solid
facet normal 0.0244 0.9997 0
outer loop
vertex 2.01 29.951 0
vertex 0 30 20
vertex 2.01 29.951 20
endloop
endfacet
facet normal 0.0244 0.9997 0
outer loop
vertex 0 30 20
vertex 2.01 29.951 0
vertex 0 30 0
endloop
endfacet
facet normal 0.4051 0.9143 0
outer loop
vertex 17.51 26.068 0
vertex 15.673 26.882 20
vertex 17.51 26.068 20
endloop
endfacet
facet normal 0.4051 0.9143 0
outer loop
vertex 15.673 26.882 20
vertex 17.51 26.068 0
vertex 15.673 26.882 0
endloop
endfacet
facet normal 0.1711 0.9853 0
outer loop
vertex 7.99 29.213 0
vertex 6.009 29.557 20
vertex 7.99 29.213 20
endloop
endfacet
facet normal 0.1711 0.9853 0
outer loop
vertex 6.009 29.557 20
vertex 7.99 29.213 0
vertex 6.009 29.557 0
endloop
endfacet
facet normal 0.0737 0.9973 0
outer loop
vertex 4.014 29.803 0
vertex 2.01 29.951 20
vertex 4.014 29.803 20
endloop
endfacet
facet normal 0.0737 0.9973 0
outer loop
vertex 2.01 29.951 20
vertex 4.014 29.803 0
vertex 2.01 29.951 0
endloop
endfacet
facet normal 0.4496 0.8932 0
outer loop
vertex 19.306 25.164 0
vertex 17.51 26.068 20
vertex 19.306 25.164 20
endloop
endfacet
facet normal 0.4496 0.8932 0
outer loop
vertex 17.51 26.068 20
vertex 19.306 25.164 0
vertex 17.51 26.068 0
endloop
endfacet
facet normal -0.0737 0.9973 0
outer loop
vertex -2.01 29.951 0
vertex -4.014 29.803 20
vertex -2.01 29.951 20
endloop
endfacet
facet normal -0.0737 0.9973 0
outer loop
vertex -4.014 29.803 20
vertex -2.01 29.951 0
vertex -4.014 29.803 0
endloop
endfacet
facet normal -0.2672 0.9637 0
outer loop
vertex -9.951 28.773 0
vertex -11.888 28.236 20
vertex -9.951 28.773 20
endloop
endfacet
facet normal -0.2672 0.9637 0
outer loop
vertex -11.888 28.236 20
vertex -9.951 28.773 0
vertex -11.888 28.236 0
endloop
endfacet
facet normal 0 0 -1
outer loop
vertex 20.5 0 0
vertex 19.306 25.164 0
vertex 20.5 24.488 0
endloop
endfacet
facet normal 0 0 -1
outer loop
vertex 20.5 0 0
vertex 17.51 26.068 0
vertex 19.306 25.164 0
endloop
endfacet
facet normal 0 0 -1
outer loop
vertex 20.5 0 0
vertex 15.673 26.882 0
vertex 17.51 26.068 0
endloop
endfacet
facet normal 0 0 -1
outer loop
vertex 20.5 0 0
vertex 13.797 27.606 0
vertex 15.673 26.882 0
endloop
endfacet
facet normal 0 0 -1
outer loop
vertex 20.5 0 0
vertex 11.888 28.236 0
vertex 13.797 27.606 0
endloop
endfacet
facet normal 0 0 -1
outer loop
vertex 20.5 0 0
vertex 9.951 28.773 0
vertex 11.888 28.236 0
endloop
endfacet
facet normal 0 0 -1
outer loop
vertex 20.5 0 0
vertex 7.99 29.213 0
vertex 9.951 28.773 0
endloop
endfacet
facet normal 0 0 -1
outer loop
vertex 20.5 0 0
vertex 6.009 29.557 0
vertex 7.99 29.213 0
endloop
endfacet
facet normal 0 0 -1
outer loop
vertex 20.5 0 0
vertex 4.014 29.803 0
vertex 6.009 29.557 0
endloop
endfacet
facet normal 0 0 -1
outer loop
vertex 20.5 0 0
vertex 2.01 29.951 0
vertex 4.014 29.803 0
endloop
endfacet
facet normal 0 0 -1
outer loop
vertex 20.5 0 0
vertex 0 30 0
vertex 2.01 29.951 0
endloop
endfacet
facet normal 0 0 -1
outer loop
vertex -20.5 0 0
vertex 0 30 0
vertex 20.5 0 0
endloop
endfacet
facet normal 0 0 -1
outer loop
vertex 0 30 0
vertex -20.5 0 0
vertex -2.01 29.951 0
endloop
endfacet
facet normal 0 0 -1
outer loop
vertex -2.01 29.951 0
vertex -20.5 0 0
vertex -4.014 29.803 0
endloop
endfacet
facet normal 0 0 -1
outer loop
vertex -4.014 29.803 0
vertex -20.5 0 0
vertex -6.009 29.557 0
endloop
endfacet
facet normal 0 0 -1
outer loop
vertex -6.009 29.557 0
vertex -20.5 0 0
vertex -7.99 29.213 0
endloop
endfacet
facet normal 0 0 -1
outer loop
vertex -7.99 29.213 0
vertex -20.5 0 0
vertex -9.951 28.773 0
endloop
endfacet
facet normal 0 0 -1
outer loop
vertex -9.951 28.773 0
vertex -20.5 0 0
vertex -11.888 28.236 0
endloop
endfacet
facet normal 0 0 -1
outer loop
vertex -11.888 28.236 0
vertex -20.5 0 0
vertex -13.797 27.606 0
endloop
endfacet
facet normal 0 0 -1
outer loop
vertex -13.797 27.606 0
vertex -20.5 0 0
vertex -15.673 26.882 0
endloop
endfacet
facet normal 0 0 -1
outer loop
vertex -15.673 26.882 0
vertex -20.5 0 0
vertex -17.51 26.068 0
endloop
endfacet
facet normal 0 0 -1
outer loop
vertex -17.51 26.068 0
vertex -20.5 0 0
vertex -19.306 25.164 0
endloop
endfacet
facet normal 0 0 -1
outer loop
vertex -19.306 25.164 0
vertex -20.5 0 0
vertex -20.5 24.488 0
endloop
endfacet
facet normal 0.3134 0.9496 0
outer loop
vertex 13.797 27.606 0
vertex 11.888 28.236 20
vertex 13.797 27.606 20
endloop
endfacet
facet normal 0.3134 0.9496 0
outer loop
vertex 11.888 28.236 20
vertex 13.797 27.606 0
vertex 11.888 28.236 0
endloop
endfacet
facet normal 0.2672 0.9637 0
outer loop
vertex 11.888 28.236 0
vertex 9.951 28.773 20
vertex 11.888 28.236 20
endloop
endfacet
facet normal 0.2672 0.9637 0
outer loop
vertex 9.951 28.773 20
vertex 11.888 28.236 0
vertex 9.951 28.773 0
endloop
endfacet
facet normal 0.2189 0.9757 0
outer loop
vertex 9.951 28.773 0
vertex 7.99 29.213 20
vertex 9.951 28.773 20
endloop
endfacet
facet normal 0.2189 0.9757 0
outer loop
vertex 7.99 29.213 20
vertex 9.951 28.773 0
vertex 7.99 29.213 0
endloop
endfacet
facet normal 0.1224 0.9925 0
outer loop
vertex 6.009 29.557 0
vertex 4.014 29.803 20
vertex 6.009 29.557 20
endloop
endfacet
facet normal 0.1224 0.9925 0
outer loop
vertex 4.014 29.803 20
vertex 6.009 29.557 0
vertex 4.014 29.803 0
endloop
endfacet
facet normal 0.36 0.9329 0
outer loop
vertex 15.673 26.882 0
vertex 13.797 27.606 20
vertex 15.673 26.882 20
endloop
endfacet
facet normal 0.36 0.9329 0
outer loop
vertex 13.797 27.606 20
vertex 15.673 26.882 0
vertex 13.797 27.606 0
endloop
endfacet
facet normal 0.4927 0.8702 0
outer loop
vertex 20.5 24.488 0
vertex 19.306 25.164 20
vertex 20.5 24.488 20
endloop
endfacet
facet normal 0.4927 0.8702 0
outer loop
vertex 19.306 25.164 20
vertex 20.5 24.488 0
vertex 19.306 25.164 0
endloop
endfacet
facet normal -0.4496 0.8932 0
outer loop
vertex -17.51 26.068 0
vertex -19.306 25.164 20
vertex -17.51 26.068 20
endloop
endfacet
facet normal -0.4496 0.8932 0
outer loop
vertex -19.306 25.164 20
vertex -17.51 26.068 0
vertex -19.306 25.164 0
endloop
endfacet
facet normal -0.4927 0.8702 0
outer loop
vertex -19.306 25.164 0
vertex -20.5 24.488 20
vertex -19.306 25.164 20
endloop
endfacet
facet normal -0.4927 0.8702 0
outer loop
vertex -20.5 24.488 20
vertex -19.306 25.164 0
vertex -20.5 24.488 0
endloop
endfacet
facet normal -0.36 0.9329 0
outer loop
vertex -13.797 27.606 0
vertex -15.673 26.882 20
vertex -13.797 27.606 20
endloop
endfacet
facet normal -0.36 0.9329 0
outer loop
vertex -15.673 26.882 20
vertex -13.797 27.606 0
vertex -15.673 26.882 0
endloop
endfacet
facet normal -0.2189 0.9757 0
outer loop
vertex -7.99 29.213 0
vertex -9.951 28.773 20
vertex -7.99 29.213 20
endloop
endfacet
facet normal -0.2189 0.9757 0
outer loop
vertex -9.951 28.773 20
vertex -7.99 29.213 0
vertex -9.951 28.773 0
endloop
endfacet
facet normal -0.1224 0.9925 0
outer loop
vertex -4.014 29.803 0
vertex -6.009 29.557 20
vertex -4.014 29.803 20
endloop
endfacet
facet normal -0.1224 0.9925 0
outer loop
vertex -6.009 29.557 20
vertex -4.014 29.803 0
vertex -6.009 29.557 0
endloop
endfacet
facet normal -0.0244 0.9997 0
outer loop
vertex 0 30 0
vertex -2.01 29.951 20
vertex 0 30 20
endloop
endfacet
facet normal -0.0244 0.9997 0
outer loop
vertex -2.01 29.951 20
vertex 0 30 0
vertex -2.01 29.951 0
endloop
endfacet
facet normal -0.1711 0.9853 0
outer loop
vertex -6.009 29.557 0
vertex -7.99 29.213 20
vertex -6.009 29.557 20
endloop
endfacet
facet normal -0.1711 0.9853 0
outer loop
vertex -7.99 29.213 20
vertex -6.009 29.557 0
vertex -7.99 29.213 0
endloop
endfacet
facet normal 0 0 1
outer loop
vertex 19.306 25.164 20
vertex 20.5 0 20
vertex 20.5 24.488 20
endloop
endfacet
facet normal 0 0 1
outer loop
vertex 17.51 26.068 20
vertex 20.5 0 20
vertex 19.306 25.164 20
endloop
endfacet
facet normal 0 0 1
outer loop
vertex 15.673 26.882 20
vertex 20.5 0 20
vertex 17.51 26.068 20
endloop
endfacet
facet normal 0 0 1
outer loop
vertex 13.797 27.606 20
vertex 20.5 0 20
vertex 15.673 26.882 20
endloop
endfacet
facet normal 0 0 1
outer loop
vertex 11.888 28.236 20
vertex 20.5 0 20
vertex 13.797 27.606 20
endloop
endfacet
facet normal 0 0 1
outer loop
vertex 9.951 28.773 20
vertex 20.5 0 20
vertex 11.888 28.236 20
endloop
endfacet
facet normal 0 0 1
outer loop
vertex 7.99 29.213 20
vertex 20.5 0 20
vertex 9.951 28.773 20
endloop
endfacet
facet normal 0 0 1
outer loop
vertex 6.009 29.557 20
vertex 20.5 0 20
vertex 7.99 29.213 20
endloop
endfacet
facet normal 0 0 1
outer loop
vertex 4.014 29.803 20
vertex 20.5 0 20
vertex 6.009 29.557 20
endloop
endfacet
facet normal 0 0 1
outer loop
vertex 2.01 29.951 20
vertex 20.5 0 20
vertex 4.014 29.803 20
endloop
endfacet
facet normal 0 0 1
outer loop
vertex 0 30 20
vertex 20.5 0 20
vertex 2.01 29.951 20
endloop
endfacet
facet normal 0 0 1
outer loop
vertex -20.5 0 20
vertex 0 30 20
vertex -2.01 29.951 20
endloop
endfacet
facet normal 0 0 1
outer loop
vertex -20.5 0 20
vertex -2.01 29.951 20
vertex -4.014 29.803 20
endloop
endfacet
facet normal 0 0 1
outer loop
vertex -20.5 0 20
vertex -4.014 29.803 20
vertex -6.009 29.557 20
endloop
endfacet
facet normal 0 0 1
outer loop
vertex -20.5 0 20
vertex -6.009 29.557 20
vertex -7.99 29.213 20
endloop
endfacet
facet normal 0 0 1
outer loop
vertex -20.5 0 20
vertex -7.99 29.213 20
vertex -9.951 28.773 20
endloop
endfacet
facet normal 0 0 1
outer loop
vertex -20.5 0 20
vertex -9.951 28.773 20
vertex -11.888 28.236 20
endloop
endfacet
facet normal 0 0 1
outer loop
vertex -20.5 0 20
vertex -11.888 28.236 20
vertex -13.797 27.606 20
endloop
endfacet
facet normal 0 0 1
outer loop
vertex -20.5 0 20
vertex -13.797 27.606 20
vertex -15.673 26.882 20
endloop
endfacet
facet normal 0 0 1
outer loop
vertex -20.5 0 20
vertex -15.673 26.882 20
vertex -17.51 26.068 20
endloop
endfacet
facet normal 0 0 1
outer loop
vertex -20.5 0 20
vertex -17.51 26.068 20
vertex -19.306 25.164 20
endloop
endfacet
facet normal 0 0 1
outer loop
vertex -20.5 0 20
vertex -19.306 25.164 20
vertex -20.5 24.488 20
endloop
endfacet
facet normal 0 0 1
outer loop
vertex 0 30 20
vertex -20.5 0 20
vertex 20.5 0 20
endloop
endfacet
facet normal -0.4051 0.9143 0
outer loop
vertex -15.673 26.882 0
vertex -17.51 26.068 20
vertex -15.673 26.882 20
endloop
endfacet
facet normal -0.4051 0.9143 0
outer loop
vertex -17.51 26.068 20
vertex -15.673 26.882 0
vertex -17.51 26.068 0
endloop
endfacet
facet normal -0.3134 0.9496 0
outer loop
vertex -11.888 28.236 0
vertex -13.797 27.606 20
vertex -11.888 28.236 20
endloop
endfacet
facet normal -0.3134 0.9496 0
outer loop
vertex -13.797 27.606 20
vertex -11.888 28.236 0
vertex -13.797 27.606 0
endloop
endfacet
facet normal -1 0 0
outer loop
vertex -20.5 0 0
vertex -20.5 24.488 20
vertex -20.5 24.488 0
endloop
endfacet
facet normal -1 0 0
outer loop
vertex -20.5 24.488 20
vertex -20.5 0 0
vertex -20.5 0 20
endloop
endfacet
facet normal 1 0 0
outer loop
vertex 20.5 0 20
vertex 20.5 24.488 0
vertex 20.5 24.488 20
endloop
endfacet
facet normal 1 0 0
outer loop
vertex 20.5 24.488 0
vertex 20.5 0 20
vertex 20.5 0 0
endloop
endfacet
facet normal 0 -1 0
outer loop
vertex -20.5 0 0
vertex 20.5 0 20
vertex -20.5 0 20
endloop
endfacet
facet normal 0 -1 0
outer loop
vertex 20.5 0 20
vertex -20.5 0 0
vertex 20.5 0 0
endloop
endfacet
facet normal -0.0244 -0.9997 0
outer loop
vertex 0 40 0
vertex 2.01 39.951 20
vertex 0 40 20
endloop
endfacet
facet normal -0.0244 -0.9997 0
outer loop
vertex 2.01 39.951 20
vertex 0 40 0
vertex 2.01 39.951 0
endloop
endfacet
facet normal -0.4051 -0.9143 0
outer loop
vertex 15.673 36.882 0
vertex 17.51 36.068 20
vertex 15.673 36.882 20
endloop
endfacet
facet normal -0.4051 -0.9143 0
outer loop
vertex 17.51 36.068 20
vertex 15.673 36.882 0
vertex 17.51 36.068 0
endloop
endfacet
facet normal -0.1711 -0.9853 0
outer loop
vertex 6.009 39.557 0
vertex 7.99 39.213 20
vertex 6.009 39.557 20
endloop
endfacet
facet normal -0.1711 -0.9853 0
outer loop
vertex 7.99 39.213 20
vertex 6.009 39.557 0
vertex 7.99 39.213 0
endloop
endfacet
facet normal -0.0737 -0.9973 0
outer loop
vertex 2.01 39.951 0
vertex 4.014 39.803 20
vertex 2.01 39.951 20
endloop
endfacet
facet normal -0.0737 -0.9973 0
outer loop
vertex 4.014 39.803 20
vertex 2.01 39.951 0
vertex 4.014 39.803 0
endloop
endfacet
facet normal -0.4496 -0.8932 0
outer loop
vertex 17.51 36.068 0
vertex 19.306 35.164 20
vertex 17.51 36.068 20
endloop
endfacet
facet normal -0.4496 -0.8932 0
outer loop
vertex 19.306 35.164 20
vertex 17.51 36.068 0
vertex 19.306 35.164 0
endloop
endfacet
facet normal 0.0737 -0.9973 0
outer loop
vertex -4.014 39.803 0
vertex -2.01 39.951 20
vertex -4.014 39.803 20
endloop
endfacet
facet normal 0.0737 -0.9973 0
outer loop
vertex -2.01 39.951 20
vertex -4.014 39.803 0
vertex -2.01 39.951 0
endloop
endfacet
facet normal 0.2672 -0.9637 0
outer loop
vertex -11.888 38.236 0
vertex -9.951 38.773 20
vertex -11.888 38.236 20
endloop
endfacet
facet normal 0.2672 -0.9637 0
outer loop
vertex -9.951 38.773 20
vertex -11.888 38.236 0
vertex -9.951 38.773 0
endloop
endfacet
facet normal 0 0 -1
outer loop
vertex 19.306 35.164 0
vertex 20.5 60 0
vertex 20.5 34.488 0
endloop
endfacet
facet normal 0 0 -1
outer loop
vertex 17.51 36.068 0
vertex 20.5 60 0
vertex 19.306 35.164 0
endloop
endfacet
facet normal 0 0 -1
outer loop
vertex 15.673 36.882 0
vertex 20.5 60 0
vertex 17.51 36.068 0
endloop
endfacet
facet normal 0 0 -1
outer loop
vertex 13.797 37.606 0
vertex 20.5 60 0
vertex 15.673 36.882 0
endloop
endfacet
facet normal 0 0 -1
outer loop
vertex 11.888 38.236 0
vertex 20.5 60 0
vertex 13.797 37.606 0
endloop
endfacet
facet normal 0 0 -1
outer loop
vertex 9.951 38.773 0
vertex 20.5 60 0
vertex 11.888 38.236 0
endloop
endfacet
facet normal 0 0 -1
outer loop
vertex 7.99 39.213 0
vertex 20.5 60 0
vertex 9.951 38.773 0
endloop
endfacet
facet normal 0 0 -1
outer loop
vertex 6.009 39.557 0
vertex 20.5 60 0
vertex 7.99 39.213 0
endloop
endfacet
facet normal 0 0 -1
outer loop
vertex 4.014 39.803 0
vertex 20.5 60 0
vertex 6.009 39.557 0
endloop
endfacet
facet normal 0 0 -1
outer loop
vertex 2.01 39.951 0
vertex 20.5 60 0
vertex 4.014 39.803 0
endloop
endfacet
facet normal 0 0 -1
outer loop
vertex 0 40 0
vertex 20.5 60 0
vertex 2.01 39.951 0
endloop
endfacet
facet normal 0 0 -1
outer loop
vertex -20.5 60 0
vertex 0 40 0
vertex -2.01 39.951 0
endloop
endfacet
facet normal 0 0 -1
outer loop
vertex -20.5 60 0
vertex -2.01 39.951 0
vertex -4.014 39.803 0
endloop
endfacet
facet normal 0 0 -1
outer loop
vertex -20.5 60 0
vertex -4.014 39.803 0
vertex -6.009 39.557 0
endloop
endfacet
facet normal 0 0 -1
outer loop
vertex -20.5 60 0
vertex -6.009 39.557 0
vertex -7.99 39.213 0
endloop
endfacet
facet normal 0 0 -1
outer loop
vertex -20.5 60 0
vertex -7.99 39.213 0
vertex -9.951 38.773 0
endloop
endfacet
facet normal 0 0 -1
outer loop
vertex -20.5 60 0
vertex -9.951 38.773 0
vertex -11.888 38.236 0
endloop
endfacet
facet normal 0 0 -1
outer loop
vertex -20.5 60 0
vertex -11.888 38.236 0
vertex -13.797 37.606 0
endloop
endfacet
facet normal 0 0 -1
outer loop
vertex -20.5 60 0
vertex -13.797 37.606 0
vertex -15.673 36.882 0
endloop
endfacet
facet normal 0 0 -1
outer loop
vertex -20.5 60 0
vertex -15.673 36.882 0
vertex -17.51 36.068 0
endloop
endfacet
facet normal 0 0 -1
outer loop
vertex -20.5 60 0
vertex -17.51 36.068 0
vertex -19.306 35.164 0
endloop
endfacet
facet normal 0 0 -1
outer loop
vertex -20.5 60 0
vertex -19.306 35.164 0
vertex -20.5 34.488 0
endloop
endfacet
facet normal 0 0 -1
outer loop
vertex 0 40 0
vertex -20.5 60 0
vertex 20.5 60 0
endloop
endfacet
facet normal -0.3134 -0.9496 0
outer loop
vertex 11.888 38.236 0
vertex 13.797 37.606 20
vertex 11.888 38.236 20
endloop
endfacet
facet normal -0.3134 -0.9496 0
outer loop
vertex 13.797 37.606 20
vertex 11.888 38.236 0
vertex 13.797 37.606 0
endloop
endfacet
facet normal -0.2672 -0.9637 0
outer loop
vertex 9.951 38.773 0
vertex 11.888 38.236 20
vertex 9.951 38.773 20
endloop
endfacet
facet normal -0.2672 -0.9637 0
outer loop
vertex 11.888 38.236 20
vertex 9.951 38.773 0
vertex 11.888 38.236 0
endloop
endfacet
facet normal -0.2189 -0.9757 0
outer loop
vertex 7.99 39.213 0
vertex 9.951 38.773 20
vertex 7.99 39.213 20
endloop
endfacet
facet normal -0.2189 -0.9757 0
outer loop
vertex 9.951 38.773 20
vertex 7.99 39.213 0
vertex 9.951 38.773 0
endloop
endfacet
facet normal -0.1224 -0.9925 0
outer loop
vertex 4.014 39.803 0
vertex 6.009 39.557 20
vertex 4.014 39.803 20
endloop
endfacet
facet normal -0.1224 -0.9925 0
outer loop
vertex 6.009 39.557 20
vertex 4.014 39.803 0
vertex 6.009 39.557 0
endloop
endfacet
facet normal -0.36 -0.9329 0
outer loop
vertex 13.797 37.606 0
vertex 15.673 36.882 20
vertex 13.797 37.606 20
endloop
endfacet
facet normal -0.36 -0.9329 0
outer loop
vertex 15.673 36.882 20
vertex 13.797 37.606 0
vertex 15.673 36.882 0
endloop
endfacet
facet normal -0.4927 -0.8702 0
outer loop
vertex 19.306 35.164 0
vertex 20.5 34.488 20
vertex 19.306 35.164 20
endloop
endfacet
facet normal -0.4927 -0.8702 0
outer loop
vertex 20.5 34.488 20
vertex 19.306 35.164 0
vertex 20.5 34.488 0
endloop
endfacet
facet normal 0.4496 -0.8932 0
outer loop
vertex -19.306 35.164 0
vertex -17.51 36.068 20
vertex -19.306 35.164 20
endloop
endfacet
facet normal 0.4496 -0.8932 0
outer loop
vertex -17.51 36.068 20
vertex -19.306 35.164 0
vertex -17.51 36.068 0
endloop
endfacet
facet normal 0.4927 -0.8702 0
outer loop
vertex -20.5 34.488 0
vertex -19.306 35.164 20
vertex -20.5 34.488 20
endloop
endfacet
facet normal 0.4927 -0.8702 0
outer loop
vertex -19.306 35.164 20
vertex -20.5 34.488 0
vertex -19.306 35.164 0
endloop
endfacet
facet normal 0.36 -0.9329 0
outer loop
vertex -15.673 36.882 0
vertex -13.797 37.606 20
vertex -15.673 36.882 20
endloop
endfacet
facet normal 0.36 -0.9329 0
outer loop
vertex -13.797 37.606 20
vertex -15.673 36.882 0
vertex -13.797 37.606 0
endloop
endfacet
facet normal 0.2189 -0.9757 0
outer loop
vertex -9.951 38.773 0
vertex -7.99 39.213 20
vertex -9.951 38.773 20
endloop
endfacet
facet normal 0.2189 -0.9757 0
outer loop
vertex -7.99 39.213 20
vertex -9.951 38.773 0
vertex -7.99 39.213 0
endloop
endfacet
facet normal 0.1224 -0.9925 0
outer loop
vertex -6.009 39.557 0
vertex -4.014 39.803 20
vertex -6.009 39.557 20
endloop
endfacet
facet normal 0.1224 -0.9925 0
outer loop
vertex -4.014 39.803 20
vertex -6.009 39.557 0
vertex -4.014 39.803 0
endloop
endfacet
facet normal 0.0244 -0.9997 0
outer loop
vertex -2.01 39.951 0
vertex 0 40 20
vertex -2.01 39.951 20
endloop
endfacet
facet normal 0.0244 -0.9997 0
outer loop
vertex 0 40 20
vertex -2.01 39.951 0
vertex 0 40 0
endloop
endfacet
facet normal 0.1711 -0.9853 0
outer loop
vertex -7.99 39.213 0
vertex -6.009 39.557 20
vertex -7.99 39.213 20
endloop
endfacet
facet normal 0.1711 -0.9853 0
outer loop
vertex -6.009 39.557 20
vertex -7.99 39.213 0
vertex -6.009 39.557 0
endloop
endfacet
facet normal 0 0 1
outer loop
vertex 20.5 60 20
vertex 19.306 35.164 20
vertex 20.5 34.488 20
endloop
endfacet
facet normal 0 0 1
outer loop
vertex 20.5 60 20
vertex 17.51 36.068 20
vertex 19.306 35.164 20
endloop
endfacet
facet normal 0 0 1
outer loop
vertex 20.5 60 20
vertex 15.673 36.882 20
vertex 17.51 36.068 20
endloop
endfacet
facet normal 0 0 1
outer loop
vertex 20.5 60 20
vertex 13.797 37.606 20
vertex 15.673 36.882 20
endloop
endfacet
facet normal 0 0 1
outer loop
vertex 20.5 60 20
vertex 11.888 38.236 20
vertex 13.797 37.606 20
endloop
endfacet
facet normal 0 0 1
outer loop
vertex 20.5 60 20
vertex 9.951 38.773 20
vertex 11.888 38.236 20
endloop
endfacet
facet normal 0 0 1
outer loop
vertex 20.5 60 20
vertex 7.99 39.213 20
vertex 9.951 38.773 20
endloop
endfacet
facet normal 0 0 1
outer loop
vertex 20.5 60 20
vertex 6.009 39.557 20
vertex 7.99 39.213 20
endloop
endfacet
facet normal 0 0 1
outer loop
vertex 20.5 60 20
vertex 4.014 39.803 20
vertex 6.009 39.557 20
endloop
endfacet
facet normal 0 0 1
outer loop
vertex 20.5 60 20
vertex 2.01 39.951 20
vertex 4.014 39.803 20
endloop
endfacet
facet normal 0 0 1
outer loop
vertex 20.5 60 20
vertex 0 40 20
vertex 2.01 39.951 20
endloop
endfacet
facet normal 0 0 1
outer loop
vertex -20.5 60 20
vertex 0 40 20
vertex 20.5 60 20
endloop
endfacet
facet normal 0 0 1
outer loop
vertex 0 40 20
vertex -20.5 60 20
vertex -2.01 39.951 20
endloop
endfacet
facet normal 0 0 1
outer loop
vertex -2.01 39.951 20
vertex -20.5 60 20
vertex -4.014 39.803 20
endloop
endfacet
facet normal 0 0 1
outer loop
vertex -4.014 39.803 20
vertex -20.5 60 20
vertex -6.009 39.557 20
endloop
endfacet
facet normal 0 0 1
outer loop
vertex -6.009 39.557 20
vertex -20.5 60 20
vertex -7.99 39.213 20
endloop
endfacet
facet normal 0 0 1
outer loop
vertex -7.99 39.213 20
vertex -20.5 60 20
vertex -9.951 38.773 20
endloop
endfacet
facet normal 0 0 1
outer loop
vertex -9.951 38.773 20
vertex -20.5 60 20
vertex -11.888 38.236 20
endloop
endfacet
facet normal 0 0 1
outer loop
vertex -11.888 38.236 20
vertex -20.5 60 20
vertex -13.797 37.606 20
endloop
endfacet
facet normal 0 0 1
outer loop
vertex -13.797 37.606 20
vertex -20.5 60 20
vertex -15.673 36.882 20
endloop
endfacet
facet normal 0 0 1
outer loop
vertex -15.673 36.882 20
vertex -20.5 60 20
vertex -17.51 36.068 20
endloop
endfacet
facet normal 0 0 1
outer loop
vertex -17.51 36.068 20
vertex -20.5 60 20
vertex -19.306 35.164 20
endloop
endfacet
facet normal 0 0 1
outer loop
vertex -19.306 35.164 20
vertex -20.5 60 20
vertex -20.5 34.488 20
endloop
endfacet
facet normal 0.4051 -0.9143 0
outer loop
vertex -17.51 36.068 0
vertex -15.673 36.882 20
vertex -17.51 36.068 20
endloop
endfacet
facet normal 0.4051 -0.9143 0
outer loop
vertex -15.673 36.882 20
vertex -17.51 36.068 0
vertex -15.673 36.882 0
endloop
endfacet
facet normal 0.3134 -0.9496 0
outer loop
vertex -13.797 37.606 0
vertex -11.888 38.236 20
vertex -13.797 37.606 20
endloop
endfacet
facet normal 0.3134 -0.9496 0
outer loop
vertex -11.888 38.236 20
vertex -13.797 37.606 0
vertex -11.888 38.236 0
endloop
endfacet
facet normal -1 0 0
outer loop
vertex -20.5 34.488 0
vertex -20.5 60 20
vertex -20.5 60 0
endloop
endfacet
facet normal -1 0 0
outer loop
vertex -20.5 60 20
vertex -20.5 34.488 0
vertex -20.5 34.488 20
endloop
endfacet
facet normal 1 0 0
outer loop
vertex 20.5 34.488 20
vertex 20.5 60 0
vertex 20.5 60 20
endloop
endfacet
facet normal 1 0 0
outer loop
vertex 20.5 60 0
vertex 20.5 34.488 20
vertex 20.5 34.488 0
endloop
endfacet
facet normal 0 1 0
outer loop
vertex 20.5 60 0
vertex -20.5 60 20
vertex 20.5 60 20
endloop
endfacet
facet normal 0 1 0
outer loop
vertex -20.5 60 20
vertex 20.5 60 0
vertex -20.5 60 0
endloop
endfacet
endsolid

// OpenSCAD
sehnenmittelpunkt_a = 5.5;
sehne_s = 41;

radius = (4 * pow(sehnenmittelpunkt_a, 2) + pow(sehne_s, 2))/(8 * sehnenmittelpunkt_a);

echo("Radius: ", radius);

hoehe = 20;
tiefe = 30;

$fn = 128;

module positiv() {
    translate([0, -(radius - tiefe), 0])
        intersection() {
            cylinder(r = radius, h = hoehe);
            translate([-sehne_s/2, radius - tiefe, 0])
                cube([sehne_s, tiefe, hoehe]);
            }
}

module negativ() {
    difference() {
        translate([-sehne_s/2, tiefe-10, 0])
            cube([sehne_s, tiefe, hoehe]);
        positiv();
    }
}

positiv();
translate([0, 10, 0])
    negativ();
